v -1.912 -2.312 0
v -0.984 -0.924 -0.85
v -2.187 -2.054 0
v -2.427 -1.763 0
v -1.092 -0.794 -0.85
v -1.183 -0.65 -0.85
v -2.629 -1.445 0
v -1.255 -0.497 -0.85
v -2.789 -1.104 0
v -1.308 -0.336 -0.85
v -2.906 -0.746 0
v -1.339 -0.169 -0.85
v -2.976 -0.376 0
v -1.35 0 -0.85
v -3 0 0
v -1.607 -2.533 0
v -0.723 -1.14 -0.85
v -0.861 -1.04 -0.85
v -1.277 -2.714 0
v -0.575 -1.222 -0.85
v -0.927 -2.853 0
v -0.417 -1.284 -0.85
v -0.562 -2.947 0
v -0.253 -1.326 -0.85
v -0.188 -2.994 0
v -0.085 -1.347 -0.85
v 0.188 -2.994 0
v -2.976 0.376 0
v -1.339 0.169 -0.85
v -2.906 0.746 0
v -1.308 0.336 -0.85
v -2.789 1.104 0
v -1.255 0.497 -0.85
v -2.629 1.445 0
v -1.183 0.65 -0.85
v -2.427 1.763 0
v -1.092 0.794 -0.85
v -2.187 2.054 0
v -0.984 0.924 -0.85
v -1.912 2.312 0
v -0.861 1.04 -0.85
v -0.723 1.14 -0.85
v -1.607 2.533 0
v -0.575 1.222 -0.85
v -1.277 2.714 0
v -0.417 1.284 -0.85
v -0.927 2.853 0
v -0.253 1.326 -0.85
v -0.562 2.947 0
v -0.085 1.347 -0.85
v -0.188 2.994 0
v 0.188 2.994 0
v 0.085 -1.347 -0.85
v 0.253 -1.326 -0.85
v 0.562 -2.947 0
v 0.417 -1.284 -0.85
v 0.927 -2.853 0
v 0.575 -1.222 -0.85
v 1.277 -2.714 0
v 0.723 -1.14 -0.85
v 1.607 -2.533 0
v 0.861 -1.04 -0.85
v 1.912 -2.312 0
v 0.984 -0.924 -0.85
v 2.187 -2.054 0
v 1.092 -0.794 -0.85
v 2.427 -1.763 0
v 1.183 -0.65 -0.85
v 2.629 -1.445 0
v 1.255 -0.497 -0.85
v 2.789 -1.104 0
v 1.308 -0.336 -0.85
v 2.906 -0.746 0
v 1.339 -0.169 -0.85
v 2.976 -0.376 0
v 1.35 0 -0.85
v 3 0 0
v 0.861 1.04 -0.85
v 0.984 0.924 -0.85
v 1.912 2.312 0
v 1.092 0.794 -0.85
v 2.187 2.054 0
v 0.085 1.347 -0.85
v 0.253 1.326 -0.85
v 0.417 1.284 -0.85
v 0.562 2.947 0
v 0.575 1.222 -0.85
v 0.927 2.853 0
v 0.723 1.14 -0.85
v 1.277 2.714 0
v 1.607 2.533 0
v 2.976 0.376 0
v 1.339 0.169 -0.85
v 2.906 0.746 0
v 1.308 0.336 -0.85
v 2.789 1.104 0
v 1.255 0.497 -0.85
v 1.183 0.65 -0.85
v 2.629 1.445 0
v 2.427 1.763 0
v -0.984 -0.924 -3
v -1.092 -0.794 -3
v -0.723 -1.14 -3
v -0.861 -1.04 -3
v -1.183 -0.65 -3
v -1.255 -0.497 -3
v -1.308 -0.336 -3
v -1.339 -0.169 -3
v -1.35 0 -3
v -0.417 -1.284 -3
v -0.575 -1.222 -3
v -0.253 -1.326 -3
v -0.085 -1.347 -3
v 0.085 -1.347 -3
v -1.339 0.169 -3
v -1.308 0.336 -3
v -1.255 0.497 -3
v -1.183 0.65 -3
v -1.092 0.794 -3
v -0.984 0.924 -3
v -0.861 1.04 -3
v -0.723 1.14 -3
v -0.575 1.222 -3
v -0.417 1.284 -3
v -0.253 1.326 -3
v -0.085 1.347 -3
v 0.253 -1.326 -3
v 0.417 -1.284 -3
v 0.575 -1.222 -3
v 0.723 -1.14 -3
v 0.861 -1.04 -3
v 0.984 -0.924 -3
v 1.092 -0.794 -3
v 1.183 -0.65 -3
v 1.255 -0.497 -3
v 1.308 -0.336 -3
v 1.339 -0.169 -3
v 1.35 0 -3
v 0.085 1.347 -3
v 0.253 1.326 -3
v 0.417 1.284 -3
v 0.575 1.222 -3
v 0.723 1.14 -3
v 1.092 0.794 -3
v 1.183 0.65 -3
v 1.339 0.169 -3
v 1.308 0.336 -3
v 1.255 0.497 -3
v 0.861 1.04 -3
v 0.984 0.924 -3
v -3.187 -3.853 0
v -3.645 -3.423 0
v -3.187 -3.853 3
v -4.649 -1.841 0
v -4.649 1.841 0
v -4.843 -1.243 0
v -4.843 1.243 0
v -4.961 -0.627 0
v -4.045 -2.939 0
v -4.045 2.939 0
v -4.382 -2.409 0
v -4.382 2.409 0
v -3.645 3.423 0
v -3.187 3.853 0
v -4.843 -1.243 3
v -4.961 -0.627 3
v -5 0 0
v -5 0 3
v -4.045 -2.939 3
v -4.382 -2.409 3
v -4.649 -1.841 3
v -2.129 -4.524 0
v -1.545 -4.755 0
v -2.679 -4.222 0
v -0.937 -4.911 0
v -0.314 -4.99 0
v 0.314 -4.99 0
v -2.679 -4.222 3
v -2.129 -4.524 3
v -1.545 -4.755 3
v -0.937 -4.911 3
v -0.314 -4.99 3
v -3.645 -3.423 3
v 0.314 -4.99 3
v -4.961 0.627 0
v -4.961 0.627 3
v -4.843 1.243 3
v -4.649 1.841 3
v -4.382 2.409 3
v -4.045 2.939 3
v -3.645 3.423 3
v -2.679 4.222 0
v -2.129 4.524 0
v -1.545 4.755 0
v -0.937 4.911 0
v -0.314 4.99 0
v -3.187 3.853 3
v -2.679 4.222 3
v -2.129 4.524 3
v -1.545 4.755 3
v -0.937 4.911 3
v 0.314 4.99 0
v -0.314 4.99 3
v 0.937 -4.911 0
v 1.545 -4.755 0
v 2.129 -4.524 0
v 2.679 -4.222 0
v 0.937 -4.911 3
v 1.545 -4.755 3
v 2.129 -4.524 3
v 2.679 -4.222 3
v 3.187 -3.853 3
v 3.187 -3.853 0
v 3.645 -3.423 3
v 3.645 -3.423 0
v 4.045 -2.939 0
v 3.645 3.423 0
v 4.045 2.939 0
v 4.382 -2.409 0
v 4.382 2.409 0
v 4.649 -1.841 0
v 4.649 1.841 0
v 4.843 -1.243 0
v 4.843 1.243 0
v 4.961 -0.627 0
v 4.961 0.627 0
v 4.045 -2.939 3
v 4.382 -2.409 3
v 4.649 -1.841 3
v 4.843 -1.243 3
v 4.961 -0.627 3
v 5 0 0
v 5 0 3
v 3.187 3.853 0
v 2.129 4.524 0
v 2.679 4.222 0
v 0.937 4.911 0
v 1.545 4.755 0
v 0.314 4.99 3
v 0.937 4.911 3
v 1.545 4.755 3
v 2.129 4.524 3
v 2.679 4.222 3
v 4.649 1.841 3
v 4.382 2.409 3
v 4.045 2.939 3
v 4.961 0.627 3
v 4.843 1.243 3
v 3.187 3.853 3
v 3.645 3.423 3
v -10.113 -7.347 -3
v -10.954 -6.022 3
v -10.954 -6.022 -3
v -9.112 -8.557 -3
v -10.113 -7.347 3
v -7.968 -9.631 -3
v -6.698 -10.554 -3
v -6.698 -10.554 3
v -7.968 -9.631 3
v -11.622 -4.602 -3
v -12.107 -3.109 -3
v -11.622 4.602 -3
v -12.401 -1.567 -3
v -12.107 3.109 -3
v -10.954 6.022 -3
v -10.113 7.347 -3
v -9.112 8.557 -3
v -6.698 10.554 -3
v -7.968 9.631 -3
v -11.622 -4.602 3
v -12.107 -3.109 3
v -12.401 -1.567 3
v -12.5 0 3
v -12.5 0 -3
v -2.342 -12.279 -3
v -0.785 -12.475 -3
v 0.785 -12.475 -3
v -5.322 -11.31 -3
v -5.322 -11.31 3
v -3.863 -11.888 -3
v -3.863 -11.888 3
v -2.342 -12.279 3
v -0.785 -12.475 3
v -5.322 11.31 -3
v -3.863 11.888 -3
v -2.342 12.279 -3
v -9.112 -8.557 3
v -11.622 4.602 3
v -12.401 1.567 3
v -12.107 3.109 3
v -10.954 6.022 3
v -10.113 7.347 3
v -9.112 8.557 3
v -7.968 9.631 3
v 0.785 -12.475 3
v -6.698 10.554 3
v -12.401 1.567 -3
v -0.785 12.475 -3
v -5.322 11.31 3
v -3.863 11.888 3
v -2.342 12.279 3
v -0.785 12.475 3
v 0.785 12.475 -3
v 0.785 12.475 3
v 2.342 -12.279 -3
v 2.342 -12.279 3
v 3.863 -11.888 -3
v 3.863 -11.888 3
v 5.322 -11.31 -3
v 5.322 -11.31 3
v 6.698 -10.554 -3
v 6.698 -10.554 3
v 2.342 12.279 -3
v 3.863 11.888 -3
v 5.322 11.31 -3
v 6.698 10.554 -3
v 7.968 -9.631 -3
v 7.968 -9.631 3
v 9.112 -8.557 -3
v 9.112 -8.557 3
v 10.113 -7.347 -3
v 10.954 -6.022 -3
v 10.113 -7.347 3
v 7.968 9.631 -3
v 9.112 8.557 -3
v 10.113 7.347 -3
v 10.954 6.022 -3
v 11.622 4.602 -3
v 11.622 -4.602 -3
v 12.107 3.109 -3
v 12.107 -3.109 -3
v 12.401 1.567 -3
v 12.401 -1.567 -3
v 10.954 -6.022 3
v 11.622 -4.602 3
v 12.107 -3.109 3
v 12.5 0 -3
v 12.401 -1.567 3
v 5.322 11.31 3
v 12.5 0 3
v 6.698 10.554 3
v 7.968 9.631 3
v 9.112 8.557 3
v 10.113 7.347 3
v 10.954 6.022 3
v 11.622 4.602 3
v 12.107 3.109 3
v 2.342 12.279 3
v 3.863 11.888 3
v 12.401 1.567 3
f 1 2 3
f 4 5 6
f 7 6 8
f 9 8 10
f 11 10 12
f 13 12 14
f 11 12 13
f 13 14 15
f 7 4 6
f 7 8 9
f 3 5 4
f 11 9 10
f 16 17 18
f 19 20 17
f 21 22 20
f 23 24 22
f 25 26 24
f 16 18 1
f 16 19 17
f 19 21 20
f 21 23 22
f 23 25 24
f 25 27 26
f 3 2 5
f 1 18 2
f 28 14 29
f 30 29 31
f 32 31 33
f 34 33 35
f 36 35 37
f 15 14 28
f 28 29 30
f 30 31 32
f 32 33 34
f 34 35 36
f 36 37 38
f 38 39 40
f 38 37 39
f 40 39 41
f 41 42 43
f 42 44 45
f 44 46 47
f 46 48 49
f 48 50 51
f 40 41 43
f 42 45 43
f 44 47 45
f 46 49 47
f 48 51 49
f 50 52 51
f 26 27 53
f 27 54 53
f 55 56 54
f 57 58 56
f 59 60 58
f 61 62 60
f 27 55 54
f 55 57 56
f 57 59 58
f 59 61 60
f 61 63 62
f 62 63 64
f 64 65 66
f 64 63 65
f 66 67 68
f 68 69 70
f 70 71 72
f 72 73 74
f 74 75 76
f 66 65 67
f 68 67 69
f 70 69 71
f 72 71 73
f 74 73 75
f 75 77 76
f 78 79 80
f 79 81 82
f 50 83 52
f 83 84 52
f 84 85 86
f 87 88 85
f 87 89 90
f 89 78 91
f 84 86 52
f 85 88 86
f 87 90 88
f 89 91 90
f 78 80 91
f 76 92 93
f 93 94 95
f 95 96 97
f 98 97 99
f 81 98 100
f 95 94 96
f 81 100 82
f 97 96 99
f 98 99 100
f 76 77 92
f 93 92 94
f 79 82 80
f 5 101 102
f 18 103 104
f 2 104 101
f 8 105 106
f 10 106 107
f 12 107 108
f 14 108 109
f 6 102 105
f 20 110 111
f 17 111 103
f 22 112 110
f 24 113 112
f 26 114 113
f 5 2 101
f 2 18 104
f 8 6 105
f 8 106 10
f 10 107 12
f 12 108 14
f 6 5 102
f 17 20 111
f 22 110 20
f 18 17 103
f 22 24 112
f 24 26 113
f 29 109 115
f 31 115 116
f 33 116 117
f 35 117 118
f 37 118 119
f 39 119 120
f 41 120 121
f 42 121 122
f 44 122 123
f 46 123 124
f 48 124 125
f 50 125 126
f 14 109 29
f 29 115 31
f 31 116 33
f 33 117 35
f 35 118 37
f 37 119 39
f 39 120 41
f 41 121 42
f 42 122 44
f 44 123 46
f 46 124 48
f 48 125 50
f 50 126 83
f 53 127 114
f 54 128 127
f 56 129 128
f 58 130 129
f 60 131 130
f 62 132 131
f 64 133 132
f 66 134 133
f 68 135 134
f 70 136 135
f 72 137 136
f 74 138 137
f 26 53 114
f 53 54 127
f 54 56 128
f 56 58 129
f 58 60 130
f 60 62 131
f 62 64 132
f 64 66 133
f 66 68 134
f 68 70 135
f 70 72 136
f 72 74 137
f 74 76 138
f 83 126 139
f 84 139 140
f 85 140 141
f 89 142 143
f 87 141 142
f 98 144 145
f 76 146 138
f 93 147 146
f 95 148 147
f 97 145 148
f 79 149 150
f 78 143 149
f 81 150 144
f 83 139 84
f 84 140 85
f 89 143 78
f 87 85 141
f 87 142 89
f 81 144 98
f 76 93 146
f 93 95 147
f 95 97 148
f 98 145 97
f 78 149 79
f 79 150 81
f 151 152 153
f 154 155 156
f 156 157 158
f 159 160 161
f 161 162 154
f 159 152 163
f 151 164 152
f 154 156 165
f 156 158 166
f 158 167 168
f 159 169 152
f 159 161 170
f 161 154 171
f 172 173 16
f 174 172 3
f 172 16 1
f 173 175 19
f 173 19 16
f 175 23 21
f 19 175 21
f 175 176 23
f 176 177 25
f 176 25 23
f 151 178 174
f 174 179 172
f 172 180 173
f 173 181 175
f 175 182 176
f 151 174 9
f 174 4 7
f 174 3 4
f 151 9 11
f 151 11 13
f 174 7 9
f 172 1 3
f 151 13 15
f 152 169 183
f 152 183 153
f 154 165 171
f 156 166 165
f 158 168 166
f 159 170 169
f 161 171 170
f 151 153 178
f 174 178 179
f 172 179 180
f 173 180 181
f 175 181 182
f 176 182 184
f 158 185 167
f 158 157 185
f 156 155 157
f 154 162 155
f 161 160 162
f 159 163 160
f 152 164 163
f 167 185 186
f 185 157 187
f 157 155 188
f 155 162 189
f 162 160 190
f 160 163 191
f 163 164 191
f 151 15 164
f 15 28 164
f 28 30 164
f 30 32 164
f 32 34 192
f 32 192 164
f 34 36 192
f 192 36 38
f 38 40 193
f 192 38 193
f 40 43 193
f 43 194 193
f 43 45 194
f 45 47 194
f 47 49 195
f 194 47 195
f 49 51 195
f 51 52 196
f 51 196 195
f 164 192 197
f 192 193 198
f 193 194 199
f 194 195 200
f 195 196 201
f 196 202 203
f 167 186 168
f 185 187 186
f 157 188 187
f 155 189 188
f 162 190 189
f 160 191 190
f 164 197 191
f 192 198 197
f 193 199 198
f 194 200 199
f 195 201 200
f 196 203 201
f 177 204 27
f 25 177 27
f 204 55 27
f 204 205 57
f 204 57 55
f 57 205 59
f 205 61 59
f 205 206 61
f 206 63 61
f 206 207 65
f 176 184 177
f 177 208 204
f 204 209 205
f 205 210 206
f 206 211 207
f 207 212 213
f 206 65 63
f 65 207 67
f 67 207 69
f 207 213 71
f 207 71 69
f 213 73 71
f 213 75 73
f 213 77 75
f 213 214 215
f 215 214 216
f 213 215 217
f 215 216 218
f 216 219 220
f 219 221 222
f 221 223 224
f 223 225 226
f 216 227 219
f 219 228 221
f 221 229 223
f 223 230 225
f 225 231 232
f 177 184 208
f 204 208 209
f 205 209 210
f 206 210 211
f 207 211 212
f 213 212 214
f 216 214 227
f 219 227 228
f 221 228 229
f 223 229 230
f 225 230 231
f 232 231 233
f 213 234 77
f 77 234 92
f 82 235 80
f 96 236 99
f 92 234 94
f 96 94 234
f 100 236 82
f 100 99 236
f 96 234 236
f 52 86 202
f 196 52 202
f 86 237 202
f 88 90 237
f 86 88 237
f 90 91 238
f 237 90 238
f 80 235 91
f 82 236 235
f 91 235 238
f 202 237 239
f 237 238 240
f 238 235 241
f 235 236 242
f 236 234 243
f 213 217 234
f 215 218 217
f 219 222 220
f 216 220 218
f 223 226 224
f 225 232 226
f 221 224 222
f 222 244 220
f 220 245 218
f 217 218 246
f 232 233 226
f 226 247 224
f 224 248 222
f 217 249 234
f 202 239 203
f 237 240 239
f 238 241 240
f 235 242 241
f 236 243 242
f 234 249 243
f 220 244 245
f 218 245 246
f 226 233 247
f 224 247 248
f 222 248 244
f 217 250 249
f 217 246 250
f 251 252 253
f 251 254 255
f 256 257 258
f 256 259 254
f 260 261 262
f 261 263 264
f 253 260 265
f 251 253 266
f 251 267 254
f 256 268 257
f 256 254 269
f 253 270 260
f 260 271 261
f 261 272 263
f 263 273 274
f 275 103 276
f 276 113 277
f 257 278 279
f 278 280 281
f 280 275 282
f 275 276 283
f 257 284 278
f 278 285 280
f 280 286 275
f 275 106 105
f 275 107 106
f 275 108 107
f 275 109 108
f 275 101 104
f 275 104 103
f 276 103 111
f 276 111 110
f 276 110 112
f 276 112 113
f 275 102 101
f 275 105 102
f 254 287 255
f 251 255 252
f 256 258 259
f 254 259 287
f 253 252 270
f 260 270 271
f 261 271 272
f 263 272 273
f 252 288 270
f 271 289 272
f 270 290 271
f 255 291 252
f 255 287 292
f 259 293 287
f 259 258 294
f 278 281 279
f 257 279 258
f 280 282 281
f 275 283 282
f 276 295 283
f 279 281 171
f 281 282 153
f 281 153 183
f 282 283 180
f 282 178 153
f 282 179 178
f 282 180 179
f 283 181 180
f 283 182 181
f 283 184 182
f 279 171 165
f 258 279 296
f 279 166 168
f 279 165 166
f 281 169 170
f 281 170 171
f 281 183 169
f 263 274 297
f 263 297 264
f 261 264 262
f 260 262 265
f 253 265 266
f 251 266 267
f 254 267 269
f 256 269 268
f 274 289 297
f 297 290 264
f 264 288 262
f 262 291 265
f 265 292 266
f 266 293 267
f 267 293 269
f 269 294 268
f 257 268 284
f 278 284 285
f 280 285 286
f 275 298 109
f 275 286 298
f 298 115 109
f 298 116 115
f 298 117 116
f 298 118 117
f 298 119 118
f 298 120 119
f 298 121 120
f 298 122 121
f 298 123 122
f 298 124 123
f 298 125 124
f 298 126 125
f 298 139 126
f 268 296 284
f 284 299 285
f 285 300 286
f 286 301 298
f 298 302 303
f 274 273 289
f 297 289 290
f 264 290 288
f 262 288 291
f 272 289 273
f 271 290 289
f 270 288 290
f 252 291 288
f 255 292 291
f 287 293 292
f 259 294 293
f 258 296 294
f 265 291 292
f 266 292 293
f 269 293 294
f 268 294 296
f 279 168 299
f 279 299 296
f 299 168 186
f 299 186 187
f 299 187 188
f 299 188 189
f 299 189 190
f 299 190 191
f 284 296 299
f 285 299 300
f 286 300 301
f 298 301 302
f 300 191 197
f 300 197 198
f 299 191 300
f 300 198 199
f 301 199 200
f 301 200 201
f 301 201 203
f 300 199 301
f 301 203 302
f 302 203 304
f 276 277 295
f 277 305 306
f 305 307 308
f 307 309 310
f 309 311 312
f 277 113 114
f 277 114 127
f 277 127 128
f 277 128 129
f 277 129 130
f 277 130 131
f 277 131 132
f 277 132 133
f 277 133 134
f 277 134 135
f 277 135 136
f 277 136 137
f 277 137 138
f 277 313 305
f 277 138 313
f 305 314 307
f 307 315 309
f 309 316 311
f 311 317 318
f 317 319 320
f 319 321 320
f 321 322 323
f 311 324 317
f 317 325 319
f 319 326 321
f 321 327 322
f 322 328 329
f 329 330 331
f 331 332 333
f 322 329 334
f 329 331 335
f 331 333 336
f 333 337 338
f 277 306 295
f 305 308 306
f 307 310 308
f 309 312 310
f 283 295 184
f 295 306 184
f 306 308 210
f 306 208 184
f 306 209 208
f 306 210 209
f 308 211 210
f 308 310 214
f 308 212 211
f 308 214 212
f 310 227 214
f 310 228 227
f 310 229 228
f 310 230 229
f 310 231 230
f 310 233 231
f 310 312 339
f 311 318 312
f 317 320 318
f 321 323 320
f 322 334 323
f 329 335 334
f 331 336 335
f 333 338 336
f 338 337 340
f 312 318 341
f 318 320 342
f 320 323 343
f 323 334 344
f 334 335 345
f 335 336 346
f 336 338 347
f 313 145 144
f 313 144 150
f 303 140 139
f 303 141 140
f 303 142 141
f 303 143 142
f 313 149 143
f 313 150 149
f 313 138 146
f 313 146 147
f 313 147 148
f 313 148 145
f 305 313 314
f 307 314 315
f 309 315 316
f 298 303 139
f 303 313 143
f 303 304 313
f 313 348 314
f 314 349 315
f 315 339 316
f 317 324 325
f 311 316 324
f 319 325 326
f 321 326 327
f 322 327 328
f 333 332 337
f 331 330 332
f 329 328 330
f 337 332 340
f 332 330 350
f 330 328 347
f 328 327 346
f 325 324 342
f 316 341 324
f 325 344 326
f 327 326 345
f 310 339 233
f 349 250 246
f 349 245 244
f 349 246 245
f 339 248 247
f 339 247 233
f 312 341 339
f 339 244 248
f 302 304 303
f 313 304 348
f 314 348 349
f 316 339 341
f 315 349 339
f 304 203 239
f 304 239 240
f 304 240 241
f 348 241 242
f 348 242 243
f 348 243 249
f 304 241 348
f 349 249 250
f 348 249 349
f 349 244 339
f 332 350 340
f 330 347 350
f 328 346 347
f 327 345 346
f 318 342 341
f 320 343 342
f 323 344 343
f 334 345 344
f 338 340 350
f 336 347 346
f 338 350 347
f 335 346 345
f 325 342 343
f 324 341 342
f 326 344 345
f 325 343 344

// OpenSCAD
$fn = 50;


difference() {
	union() {
		translate(v = [0, 0, -3.0000000000]) {
			cylinder(h = 6, r = 12.5000000000);
		}
	}
	union() {
		translate(v = [0, 0, 0]) {
			rotate(a = [0, 0, 0]) {
				difference() {
					union() {
						translate(v = [0, 0, -6.0000000000]) {
							cylinder(h = 6, r = 1.0000000000);
						}
						translate(v = [0, 0, -0.8500000000]) {
							cylinder(h = 0.8500000000, r1 = 1.3500000000, r2 = 3.0000000000);
						}
						translate(v = [0, 0, -6.0000000000]) {
							cylinder(h = 6, r = 1.3500000000);
						}
						translate(v = [0, 0, -6.0000000000]) {
							cylinder(h = 6, r = 1.0000000000);
						}
					}
					union();
				}
			}
		}
		#cylinder(h = 3, r = 5.0000000000);
	}
}
